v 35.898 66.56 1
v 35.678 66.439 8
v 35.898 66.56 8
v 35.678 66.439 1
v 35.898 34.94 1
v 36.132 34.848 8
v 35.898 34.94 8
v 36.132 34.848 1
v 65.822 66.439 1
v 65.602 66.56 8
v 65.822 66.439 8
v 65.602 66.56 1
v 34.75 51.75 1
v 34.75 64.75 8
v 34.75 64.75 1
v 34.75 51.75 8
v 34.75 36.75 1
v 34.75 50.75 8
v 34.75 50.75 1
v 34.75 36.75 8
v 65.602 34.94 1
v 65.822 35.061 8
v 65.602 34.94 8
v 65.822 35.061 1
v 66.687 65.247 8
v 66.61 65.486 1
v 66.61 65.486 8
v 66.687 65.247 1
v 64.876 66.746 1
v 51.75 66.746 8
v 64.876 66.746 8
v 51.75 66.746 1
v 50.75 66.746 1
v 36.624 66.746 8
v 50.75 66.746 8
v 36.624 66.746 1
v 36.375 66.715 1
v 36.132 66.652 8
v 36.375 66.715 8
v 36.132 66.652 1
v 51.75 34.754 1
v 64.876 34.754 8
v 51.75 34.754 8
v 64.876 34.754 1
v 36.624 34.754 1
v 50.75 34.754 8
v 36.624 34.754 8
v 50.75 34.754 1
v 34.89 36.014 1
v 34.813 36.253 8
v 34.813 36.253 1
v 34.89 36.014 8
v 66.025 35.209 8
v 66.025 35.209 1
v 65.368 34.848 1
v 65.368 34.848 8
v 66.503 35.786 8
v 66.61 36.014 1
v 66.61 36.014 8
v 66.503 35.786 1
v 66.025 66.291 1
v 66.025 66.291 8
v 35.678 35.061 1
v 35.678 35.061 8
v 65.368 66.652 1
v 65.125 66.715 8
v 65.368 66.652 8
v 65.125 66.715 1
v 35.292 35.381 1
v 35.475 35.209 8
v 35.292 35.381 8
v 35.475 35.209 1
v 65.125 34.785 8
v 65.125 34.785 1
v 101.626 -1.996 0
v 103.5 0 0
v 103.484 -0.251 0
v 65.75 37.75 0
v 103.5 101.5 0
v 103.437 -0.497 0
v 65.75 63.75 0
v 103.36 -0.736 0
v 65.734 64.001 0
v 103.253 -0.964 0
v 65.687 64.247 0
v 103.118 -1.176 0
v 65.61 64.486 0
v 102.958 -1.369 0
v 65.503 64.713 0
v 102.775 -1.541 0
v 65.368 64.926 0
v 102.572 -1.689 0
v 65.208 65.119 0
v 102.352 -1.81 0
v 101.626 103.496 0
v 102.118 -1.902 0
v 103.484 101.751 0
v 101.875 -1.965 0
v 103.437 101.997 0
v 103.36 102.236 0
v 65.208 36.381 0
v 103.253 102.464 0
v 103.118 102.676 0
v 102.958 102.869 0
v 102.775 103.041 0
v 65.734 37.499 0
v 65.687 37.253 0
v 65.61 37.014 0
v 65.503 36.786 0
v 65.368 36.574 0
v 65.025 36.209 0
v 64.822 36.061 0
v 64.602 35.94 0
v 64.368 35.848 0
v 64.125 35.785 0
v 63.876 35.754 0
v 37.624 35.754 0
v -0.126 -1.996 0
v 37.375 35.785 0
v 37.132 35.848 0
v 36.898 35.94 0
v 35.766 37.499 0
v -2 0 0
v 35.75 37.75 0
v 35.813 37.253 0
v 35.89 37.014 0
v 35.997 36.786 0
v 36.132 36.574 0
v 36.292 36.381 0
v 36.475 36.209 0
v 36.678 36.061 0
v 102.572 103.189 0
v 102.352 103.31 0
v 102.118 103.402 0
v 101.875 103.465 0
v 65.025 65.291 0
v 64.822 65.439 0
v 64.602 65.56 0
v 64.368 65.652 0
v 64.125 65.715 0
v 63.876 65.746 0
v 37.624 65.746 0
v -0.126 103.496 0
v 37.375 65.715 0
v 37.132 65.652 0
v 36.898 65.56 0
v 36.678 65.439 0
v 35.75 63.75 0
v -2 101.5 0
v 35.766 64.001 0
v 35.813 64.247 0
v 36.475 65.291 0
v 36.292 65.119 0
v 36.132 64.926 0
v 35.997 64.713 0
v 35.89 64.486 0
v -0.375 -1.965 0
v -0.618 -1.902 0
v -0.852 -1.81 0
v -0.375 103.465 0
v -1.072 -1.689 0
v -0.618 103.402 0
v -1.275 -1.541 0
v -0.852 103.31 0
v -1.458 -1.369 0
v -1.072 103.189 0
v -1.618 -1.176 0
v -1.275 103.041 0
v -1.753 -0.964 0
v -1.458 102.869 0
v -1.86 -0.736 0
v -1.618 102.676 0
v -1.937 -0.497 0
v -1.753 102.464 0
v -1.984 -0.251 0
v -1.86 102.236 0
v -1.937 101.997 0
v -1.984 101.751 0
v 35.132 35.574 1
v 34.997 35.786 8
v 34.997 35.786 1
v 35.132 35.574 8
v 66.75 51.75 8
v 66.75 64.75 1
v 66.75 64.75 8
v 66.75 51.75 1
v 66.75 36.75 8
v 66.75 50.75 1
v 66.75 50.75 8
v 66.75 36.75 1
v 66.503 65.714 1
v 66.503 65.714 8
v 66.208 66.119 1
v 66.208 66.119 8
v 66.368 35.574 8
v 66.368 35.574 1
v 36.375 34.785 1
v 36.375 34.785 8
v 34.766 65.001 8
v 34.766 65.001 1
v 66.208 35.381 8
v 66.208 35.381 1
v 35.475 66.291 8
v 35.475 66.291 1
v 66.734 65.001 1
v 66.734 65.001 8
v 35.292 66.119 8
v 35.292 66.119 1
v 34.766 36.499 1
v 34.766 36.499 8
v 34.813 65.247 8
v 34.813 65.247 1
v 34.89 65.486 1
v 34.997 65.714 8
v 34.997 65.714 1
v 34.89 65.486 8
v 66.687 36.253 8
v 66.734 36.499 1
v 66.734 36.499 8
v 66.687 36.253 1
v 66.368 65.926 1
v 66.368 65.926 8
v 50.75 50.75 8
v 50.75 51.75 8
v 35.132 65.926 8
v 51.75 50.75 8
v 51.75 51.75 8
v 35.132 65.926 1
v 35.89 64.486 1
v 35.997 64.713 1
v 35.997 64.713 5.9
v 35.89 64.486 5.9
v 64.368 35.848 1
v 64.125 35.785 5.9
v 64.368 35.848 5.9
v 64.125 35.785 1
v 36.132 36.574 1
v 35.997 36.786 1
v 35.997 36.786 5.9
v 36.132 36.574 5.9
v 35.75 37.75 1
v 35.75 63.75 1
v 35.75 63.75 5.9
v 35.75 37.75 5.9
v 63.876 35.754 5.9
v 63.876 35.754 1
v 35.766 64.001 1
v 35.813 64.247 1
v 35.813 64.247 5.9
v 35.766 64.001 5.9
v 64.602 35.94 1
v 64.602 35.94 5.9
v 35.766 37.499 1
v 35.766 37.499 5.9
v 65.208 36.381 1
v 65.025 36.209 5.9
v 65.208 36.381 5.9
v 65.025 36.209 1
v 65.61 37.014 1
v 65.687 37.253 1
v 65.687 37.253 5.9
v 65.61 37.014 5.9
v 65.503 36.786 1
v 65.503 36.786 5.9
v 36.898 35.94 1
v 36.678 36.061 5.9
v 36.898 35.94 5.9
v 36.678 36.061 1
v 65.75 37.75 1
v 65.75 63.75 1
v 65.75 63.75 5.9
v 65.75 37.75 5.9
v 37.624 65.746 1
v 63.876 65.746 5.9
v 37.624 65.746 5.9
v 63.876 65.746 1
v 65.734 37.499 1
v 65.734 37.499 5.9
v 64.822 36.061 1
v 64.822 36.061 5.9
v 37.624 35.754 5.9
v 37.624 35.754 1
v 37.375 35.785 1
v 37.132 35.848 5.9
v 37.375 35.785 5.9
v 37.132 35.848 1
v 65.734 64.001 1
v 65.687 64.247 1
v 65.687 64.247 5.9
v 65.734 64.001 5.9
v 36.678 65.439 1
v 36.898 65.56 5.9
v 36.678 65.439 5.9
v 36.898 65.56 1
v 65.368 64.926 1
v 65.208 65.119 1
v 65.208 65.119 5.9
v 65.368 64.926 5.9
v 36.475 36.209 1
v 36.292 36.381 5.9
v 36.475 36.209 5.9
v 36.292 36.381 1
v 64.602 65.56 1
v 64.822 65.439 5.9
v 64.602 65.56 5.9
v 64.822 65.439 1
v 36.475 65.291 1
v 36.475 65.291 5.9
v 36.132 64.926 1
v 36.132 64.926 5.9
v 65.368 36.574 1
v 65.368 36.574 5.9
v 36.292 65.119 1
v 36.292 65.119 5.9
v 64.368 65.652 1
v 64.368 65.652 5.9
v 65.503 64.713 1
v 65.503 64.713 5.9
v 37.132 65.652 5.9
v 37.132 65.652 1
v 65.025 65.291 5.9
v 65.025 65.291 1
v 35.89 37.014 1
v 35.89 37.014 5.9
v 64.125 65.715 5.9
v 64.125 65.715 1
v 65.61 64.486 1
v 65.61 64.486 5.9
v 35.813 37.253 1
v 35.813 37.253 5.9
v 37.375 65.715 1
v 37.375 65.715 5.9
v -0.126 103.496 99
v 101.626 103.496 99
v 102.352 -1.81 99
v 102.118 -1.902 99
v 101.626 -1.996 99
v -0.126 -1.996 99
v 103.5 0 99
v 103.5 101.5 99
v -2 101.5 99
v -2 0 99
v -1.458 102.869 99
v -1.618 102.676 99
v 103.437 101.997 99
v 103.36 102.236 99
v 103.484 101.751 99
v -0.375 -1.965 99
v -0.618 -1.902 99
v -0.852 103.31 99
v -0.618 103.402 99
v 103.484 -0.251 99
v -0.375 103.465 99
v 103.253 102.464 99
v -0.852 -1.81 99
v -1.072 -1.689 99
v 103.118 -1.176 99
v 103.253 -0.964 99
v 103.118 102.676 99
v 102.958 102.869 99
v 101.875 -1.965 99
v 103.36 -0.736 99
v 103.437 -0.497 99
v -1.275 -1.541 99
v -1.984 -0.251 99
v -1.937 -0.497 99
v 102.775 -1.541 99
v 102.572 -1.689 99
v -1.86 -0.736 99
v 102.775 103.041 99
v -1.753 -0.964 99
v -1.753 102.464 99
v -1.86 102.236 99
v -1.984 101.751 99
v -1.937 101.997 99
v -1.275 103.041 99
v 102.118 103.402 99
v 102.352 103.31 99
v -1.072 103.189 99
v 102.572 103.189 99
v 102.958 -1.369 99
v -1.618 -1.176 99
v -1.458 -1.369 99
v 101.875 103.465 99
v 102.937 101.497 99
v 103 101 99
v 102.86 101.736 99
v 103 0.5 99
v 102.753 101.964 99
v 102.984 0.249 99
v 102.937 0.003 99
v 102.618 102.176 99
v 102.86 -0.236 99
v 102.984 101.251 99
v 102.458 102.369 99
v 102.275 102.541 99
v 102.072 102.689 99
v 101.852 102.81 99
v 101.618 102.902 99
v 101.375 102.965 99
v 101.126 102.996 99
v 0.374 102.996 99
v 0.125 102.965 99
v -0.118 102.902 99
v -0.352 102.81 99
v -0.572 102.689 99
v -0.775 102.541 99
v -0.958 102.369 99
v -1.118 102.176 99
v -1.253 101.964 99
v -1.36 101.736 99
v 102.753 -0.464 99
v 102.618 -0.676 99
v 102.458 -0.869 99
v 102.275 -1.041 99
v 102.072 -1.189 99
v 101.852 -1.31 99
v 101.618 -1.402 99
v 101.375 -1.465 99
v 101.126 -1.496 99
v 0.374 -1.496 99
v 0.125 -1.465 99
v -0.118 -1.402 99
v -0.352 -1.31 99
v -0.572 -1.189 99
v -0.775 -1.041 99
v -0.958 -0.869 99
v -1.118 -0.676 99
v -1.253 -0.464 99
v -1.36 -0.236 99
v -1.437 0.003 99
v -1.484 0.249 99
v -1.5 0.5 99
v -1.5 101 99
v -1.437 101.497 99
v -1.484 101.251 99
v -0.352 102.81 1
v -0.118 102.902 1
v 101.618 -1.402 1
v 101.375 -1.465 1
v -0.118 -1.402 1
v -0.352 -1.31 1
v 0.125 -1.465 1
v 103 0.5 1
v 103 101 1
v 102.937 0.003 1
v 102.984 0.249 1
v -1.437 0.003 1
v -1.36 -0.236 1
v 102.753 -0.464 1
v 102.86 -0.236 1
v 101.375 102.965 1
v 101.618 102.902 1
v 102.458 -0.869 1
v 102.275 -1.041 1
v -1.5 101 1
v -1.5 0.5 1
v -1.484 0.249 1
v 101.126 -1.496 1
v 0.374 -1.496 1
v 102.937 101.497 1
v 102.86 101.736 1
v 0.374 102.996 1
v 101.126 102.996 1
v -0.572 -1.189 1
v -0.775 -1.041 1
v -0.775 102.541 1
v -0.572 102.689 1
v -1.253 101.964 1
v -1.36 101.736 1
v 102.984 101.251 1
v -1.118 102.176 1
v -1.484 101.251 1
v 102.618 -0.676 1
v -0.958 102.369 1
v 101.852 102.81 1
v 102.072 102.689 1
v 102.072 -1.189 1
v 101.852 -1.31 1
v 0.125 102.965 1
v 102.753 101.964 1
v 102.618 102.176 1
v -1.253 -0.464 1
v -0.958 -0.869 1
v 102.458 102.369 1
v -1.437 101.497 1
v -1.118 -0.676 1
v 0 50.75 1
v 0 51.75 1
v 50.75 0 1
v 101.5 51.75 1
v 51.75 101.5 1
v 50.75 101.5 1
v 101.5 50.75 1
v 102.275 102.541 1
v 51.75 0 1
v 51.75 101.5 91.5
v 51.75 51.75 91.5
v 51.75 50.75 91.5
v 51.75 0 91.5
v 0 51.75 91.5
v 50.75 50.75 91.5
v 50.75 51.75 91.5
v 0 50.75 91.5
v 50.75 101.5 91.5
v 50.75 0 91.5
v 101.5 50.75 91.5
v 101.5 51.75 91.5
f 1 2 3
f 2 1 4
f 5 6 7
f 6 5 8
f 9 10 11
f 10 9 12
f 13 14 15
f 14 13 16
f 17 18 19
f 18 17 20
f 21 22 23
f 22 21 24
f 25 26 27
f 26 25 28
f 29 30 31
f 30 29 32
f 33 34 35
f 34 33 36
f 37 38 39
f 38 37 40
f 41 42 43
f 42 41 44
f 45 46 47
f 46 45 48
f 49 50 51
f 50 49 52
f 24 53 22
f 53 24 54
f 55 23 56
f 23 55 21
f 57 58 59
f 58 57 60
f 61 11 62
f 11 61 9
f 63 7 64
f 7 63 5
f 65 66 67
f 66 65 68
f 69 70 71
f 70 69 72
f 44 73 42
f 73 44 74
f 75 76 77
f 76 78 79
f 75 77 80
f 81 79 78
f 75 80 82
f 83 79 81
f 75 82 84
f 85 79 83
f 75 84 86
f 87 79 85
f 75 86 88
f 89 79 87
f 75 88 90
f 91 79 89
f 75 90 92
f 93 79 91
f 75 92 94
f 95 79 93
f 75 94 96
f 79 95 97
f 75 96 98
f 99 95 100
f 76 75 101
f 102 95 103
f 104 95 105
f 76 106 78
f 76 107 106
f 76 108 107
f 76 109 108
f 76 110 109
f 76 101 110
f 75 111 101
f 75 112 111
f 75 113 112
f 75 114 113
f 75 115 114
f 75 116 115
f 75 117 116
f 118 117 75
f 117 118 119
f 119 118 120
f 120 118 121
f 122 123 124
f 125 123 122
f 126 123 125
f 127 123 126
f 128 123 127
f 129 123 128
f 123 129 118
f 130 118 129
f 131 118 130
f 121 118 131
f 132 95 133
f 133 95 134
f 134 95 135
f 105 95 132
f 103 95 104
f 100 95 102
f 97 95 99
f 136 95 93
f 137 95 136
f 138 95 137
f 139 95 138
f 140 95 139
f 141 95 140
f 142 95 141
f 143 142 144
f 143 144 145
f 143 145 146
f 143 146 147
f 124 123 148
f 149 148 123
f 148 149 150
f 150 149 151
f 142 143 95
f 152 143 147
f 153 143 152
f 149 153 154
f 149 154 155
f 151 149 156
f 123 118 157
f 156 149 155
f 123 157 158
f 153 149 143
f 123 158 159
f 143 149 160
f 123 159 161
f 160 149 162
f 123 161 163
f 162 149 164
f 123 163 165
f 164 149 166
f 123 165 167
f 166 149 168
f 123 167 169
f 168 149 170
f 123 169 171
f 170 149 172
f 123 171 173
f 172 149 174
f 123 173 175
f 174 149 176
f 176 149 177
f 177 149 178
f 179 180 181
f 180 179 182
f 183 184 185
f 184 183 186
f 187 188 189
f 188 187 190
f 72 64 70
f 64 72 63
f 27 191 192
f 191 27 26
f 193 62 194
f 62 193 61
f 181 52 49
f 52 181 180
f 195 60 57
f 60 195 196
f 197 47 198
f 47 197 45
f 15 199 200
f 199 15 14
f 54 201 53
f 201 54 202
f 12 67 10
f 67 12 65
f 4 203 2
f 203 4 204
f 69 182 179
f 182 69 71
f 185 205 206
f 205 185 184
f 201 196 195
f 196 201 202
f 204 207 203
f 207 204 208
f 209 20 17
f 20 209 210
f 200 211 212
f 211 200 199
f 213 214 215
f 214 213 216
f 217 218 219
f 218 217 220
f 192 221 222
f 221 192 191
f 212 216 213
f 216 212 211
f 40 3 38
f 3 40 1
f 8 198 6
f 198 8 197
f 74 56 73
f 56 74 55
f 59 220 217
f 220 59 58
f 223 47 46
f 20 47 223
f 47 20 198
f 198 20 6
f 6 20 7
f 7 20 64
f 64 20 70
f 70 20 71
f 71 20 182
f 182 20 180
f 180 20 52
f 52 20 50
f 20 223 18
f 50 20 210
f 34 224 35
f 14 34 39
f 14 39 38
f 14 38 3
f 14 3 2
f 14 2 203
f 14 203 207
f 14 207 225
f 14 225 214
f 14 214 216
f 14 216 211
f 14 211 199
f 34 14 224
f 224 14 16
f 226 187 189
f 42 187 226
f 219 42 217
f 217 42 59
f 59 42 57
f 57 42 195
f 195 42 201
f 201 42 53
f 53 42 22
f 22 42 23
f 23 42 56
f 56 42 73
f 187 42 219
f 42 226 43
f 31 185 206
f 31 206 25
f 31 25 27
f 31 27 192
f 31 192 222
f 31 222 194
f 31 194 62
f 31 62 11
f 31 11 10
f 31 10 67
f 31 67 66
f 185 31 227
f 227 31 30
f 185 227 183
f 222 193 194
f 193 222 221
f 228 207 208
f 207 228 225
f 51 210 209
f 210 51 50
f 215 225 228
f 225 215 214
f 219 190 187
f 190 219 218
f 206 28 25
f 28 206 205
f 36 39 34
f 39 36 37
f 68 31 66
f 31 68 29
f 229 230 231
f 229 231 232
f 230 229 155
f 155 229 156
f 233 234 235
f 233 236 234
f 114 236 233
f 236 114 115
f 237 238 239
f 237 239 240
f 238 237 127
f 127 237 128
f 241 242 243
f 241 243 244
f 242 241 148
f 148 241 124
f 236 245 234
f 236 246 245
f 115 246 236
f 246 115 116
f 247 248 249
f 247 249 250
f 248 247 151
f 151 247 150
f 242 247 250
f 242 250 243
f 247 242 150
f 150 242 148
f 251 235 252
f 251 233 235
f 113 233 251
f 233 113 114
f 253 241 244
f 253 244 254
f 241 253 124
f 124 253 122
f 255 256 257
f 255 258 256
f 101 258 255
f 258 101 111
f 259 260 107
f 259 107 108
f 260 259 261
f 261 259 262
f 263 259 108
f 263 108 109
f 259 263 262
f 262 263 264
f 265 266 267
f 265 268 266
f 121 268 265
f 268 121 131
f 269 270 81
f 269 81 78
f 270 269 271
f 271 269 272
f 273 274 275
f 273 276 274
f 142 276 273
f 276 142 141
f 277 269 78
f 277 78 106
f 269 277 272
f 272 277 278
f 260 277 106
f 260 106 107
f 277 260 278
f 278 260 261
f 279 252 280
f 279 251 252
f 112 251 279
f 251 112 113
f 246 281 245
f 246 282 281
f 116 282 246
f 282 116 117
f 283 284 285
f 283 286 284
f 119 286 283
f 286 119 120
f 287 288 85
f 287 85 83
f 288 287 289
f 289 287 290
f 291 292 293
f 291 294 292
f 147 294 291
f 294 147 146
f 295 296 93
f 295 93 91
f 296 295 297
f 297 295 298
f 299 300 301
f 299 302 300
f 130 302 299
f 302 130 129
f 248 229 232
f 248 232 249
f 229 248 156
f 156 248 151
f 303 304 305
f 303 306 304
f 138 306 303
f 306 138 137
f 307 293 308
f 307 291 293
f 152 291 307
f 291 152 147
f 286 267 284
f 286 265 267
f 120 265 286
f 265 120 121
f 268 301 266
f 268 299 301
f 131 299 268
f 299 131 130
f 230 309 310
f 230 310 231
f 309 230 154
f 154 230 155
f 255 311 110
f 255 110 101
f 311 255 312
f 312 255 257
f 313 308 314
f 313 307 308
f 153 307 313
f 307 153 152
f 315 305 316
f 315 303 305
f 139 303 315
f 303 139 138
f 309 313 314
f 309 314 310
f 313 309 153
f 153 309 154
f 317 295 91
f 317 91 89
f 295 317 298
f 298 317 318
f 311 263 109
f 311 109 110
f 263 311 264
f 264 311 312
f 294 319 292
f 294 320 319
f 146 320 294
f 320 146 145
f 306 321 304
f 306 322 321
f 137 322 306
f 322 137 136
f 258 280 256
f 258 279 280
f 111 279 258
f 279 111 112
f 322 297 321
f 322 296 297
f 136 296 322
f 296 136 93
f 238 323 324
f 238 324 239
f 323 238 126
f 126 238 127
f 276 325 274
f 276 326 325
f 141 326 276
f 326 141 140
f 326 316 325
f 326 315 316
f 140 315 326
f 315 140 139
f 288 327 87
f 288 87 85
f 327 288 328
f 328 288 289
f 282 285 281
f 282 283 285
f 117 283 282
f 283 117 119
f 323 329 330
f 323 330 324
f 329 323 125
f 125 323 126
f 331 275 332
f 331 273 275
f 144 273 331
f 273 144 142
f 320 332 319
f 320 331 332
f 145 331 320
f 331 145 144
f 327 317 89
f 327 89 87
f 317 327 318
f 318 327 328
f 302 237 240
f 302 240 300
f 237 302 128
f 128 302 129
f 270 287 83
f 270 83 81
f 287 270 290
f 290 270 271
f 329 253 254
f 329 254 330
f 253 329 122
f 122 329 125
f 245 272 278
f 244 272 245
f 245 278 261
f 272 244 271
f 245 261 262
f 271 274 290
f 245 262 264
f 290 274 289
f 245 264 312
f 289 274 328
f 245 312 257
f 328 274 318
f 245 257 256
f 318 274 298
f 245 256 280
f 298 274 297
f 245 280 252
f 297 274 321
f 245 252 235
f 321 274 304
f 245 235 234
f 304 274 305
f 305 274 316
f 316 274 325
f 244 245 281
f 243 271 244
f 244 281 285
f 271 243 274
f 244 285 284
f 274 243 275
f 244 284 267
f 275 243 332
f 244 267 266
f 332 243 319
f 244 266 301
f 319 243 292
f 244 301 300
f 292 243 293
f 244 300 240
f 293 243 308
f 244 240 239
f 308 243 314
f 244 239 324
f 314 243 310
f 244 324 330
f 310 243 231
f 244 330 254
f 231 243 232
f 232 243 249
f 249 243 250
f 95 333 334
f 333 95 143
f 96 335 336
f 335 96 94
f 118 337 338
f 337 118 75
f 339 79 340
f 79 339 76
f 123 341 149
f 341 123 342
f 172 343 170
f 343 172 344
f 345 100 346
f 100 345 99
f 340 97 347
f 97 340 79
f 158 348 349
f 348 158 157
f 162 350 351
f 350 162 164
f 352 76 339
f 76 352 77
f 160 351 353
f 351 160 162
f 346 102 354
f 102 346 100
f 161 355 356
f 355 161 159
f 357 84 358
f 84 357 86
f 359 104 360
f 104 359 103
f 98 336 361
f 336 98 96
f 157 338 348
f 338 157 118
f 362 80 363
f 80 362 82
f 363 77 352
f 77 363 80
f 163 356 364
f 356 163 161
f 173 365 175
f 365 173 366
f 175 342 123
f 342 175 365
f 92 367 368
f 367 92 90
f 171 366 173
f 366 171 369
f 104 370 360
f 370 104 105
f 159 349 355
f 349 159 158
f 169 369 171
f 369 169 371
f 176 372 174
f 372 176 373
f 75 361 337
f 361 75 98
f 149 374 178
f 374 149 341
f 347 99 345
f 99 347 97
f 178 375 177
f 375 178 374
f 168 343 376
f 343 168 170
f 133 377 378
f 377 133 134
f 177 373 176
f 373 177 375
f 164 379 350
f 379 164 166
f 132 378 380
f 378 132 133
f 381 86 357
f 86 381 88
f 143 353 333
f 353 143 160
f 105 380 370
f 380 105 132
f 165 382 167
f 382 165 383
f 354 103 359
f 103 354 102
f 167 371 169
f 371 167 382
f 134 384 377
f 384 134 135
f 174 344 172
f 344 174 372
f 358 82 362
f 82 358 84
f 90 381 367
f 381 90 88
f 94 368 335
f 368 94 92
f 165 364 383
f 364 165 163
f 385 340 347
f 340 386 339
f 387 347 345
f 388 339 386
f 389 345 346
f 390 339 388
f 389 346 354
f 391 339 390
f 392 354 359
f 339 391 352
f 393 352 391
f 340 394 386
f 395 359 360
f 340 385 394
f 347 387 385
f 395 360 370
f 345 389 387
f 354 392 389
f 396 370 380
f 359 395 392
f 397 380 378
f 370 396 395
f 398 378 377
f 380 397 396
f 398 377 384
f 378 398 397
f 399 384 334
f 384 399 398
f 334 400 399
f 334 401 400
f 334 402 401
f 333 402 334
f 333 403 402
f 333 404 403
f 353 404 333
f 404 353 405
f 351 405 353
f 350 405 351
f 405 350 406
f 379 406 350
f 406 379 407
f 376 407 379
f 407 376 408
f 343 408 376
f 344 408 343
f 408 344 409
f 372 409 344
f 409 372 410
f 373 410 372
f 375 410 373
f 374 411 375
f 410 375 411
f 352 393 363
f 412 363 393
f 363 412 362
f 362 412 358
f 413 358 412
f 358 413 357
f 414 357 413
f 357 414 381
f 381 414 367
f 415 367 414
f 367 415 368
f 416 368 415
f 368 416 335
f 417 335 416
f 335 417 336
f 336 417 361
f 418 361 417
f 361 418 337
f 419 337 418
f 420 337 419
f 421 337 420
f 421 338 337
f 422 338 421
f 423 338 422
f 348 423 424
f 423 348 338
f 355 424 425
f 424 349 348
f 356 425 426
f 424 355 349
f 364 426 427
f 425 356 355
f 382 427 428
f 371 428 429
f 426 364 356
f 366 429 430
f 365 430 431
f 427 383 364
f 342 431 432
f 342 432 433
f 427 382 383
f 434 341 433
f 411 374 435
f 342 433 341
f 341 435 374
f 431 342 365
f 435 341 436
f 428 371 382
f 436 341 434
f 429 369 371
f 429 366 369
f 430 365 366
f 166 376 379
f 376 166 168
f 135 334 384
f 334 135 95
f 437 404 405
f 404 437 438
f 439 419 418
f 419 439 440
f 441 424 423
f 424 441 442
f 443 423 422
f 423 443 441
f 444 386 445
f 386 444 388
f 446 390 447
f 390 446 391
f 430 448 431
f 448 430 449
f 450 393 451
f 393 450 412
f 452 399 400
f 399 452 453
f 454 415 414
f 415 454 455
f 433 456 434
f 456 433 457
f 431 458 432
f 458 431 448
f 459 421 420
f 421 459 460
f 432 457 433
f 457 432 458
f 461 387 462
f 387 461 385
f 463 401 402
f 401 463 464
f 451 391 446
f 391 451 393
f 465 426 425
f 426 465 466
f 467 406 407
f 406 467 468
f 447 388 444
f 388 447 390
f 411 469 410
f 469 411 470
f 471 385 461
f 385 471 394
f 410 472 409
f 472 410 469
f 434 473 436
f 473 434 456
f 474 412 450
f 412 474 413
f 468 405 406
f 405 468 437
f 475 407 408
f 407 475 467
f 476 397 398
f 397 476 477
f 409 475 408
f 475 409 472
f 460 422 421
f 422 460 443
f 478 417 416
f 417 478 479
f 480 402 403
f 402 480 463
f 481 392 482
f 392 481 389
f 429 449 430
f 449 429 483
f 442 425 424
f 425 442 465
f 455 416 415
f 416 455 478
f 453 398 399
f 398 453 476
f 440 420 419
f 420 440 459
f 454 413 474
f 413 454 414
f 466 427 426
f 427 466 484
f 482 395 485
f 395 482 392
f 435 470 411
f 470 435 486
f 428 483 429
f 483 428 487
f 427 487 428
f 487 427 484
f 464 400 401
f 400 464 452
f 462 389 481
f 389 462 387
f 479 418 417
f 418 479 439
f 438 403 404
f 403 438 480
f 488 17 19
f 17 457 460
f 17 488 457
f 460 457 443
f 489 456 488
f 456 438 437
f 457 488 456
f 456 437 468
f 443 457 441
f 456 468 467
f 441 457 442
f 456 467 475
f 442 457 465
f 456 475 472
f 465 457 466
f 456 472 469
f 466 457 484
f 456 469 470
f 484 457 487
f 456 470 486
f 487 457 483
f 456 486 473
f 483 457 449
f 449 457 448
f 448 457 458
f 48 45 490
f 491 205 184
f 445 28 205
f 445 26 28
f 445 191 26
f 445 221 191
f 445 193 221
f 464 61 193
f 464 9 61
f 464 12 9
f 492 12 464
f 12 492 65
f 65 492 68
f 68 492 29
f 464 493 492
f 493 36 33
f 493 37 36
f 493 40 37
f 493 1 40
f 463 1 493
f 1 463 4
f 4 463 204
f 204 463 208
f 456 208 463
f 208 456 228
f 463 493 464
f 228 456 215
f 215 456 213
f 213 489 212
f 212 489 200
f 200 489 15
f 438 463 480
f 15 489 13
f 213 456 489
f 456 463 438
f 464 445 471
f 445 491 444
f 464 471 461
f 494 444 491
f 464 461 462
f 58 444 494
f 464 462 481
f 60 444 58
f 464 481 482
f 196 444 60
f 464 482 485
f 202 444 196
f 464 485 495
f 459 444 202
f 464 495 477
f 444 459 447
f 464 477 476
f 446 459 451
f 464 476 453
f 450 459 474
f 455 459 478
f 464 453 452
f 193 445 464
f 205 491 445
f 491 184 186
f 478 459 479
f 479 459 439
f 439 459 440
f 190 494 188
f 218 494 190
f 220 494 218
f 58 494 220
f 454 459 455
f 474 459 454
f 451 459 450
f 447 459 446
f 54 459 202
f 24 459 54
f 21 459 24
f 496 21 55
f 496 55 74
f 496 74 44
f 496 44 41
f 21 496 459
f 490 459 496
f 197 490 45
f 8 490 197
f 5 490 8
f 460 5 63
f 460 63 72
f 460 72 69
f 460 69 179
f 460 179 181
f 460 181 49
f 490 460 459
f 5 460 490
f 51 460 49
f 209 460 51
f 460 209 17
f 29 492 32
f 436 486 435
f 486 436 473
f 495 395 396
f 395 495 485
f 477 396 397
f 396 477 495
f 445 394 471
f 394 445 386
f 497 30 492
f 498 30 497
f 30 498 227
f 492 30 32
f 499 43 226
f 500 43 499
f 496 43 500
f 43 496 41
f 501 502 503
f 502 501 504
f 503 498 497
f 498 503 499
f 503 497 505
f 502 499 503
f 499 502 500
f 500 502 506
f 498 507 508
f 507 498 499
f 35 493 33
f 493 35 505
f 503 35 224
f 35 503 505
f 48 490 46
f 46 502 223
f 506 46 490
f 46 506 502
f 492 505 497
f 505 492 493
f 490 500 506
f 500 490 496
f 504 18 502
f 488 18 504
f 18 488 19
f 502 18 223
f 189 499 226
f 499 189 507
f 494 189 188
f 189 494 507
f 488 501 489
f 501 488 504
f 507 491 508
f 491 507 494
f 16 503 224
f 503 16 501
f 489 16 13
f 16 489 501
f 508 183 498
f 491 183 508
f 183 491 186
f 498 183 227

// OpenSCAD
module rcube(tx,ty,tz)
{
  $fn=50;
  minkowski() {
    cube([tx,ty,tz]);
    // rounded corners
    cylinder(r=2,h=2);
  }
}

module psmallcup()
{
 difference()
  {
	rcube(101.5,101.5,97);
        translate([1/2,1/2,1]) rcube(100.5,100.5,96.5);
        translate([(101.5-26)/2,(101.5-26)/2,-.1]) rcube(26,26,4);
  }
 difference(){
    translate([(101.5-28)/2,(101.5-28)/2,0]) rcube(28,28,6);
    translate([(101.5-26)/2,(101.5-26)/2,-.1]) rcube(26,26,4);
 }
}

module dividers()
{
   translate([101.5/2,0,0]) cube([1,101.5,91.5]);  
   rotate([0,0,90]) translate([101.5/2,-101.5,0]) cube([1,101.5,91.5]);
    
}

module psmallcupd4()
{
   psmallcup();
   difference(){
     dividers();
     translate([(101.5-26)/2,(101.5-26)/2,-.1]) rcube(26,26,4);
     }  
    
}

psmallcupd4();
   
